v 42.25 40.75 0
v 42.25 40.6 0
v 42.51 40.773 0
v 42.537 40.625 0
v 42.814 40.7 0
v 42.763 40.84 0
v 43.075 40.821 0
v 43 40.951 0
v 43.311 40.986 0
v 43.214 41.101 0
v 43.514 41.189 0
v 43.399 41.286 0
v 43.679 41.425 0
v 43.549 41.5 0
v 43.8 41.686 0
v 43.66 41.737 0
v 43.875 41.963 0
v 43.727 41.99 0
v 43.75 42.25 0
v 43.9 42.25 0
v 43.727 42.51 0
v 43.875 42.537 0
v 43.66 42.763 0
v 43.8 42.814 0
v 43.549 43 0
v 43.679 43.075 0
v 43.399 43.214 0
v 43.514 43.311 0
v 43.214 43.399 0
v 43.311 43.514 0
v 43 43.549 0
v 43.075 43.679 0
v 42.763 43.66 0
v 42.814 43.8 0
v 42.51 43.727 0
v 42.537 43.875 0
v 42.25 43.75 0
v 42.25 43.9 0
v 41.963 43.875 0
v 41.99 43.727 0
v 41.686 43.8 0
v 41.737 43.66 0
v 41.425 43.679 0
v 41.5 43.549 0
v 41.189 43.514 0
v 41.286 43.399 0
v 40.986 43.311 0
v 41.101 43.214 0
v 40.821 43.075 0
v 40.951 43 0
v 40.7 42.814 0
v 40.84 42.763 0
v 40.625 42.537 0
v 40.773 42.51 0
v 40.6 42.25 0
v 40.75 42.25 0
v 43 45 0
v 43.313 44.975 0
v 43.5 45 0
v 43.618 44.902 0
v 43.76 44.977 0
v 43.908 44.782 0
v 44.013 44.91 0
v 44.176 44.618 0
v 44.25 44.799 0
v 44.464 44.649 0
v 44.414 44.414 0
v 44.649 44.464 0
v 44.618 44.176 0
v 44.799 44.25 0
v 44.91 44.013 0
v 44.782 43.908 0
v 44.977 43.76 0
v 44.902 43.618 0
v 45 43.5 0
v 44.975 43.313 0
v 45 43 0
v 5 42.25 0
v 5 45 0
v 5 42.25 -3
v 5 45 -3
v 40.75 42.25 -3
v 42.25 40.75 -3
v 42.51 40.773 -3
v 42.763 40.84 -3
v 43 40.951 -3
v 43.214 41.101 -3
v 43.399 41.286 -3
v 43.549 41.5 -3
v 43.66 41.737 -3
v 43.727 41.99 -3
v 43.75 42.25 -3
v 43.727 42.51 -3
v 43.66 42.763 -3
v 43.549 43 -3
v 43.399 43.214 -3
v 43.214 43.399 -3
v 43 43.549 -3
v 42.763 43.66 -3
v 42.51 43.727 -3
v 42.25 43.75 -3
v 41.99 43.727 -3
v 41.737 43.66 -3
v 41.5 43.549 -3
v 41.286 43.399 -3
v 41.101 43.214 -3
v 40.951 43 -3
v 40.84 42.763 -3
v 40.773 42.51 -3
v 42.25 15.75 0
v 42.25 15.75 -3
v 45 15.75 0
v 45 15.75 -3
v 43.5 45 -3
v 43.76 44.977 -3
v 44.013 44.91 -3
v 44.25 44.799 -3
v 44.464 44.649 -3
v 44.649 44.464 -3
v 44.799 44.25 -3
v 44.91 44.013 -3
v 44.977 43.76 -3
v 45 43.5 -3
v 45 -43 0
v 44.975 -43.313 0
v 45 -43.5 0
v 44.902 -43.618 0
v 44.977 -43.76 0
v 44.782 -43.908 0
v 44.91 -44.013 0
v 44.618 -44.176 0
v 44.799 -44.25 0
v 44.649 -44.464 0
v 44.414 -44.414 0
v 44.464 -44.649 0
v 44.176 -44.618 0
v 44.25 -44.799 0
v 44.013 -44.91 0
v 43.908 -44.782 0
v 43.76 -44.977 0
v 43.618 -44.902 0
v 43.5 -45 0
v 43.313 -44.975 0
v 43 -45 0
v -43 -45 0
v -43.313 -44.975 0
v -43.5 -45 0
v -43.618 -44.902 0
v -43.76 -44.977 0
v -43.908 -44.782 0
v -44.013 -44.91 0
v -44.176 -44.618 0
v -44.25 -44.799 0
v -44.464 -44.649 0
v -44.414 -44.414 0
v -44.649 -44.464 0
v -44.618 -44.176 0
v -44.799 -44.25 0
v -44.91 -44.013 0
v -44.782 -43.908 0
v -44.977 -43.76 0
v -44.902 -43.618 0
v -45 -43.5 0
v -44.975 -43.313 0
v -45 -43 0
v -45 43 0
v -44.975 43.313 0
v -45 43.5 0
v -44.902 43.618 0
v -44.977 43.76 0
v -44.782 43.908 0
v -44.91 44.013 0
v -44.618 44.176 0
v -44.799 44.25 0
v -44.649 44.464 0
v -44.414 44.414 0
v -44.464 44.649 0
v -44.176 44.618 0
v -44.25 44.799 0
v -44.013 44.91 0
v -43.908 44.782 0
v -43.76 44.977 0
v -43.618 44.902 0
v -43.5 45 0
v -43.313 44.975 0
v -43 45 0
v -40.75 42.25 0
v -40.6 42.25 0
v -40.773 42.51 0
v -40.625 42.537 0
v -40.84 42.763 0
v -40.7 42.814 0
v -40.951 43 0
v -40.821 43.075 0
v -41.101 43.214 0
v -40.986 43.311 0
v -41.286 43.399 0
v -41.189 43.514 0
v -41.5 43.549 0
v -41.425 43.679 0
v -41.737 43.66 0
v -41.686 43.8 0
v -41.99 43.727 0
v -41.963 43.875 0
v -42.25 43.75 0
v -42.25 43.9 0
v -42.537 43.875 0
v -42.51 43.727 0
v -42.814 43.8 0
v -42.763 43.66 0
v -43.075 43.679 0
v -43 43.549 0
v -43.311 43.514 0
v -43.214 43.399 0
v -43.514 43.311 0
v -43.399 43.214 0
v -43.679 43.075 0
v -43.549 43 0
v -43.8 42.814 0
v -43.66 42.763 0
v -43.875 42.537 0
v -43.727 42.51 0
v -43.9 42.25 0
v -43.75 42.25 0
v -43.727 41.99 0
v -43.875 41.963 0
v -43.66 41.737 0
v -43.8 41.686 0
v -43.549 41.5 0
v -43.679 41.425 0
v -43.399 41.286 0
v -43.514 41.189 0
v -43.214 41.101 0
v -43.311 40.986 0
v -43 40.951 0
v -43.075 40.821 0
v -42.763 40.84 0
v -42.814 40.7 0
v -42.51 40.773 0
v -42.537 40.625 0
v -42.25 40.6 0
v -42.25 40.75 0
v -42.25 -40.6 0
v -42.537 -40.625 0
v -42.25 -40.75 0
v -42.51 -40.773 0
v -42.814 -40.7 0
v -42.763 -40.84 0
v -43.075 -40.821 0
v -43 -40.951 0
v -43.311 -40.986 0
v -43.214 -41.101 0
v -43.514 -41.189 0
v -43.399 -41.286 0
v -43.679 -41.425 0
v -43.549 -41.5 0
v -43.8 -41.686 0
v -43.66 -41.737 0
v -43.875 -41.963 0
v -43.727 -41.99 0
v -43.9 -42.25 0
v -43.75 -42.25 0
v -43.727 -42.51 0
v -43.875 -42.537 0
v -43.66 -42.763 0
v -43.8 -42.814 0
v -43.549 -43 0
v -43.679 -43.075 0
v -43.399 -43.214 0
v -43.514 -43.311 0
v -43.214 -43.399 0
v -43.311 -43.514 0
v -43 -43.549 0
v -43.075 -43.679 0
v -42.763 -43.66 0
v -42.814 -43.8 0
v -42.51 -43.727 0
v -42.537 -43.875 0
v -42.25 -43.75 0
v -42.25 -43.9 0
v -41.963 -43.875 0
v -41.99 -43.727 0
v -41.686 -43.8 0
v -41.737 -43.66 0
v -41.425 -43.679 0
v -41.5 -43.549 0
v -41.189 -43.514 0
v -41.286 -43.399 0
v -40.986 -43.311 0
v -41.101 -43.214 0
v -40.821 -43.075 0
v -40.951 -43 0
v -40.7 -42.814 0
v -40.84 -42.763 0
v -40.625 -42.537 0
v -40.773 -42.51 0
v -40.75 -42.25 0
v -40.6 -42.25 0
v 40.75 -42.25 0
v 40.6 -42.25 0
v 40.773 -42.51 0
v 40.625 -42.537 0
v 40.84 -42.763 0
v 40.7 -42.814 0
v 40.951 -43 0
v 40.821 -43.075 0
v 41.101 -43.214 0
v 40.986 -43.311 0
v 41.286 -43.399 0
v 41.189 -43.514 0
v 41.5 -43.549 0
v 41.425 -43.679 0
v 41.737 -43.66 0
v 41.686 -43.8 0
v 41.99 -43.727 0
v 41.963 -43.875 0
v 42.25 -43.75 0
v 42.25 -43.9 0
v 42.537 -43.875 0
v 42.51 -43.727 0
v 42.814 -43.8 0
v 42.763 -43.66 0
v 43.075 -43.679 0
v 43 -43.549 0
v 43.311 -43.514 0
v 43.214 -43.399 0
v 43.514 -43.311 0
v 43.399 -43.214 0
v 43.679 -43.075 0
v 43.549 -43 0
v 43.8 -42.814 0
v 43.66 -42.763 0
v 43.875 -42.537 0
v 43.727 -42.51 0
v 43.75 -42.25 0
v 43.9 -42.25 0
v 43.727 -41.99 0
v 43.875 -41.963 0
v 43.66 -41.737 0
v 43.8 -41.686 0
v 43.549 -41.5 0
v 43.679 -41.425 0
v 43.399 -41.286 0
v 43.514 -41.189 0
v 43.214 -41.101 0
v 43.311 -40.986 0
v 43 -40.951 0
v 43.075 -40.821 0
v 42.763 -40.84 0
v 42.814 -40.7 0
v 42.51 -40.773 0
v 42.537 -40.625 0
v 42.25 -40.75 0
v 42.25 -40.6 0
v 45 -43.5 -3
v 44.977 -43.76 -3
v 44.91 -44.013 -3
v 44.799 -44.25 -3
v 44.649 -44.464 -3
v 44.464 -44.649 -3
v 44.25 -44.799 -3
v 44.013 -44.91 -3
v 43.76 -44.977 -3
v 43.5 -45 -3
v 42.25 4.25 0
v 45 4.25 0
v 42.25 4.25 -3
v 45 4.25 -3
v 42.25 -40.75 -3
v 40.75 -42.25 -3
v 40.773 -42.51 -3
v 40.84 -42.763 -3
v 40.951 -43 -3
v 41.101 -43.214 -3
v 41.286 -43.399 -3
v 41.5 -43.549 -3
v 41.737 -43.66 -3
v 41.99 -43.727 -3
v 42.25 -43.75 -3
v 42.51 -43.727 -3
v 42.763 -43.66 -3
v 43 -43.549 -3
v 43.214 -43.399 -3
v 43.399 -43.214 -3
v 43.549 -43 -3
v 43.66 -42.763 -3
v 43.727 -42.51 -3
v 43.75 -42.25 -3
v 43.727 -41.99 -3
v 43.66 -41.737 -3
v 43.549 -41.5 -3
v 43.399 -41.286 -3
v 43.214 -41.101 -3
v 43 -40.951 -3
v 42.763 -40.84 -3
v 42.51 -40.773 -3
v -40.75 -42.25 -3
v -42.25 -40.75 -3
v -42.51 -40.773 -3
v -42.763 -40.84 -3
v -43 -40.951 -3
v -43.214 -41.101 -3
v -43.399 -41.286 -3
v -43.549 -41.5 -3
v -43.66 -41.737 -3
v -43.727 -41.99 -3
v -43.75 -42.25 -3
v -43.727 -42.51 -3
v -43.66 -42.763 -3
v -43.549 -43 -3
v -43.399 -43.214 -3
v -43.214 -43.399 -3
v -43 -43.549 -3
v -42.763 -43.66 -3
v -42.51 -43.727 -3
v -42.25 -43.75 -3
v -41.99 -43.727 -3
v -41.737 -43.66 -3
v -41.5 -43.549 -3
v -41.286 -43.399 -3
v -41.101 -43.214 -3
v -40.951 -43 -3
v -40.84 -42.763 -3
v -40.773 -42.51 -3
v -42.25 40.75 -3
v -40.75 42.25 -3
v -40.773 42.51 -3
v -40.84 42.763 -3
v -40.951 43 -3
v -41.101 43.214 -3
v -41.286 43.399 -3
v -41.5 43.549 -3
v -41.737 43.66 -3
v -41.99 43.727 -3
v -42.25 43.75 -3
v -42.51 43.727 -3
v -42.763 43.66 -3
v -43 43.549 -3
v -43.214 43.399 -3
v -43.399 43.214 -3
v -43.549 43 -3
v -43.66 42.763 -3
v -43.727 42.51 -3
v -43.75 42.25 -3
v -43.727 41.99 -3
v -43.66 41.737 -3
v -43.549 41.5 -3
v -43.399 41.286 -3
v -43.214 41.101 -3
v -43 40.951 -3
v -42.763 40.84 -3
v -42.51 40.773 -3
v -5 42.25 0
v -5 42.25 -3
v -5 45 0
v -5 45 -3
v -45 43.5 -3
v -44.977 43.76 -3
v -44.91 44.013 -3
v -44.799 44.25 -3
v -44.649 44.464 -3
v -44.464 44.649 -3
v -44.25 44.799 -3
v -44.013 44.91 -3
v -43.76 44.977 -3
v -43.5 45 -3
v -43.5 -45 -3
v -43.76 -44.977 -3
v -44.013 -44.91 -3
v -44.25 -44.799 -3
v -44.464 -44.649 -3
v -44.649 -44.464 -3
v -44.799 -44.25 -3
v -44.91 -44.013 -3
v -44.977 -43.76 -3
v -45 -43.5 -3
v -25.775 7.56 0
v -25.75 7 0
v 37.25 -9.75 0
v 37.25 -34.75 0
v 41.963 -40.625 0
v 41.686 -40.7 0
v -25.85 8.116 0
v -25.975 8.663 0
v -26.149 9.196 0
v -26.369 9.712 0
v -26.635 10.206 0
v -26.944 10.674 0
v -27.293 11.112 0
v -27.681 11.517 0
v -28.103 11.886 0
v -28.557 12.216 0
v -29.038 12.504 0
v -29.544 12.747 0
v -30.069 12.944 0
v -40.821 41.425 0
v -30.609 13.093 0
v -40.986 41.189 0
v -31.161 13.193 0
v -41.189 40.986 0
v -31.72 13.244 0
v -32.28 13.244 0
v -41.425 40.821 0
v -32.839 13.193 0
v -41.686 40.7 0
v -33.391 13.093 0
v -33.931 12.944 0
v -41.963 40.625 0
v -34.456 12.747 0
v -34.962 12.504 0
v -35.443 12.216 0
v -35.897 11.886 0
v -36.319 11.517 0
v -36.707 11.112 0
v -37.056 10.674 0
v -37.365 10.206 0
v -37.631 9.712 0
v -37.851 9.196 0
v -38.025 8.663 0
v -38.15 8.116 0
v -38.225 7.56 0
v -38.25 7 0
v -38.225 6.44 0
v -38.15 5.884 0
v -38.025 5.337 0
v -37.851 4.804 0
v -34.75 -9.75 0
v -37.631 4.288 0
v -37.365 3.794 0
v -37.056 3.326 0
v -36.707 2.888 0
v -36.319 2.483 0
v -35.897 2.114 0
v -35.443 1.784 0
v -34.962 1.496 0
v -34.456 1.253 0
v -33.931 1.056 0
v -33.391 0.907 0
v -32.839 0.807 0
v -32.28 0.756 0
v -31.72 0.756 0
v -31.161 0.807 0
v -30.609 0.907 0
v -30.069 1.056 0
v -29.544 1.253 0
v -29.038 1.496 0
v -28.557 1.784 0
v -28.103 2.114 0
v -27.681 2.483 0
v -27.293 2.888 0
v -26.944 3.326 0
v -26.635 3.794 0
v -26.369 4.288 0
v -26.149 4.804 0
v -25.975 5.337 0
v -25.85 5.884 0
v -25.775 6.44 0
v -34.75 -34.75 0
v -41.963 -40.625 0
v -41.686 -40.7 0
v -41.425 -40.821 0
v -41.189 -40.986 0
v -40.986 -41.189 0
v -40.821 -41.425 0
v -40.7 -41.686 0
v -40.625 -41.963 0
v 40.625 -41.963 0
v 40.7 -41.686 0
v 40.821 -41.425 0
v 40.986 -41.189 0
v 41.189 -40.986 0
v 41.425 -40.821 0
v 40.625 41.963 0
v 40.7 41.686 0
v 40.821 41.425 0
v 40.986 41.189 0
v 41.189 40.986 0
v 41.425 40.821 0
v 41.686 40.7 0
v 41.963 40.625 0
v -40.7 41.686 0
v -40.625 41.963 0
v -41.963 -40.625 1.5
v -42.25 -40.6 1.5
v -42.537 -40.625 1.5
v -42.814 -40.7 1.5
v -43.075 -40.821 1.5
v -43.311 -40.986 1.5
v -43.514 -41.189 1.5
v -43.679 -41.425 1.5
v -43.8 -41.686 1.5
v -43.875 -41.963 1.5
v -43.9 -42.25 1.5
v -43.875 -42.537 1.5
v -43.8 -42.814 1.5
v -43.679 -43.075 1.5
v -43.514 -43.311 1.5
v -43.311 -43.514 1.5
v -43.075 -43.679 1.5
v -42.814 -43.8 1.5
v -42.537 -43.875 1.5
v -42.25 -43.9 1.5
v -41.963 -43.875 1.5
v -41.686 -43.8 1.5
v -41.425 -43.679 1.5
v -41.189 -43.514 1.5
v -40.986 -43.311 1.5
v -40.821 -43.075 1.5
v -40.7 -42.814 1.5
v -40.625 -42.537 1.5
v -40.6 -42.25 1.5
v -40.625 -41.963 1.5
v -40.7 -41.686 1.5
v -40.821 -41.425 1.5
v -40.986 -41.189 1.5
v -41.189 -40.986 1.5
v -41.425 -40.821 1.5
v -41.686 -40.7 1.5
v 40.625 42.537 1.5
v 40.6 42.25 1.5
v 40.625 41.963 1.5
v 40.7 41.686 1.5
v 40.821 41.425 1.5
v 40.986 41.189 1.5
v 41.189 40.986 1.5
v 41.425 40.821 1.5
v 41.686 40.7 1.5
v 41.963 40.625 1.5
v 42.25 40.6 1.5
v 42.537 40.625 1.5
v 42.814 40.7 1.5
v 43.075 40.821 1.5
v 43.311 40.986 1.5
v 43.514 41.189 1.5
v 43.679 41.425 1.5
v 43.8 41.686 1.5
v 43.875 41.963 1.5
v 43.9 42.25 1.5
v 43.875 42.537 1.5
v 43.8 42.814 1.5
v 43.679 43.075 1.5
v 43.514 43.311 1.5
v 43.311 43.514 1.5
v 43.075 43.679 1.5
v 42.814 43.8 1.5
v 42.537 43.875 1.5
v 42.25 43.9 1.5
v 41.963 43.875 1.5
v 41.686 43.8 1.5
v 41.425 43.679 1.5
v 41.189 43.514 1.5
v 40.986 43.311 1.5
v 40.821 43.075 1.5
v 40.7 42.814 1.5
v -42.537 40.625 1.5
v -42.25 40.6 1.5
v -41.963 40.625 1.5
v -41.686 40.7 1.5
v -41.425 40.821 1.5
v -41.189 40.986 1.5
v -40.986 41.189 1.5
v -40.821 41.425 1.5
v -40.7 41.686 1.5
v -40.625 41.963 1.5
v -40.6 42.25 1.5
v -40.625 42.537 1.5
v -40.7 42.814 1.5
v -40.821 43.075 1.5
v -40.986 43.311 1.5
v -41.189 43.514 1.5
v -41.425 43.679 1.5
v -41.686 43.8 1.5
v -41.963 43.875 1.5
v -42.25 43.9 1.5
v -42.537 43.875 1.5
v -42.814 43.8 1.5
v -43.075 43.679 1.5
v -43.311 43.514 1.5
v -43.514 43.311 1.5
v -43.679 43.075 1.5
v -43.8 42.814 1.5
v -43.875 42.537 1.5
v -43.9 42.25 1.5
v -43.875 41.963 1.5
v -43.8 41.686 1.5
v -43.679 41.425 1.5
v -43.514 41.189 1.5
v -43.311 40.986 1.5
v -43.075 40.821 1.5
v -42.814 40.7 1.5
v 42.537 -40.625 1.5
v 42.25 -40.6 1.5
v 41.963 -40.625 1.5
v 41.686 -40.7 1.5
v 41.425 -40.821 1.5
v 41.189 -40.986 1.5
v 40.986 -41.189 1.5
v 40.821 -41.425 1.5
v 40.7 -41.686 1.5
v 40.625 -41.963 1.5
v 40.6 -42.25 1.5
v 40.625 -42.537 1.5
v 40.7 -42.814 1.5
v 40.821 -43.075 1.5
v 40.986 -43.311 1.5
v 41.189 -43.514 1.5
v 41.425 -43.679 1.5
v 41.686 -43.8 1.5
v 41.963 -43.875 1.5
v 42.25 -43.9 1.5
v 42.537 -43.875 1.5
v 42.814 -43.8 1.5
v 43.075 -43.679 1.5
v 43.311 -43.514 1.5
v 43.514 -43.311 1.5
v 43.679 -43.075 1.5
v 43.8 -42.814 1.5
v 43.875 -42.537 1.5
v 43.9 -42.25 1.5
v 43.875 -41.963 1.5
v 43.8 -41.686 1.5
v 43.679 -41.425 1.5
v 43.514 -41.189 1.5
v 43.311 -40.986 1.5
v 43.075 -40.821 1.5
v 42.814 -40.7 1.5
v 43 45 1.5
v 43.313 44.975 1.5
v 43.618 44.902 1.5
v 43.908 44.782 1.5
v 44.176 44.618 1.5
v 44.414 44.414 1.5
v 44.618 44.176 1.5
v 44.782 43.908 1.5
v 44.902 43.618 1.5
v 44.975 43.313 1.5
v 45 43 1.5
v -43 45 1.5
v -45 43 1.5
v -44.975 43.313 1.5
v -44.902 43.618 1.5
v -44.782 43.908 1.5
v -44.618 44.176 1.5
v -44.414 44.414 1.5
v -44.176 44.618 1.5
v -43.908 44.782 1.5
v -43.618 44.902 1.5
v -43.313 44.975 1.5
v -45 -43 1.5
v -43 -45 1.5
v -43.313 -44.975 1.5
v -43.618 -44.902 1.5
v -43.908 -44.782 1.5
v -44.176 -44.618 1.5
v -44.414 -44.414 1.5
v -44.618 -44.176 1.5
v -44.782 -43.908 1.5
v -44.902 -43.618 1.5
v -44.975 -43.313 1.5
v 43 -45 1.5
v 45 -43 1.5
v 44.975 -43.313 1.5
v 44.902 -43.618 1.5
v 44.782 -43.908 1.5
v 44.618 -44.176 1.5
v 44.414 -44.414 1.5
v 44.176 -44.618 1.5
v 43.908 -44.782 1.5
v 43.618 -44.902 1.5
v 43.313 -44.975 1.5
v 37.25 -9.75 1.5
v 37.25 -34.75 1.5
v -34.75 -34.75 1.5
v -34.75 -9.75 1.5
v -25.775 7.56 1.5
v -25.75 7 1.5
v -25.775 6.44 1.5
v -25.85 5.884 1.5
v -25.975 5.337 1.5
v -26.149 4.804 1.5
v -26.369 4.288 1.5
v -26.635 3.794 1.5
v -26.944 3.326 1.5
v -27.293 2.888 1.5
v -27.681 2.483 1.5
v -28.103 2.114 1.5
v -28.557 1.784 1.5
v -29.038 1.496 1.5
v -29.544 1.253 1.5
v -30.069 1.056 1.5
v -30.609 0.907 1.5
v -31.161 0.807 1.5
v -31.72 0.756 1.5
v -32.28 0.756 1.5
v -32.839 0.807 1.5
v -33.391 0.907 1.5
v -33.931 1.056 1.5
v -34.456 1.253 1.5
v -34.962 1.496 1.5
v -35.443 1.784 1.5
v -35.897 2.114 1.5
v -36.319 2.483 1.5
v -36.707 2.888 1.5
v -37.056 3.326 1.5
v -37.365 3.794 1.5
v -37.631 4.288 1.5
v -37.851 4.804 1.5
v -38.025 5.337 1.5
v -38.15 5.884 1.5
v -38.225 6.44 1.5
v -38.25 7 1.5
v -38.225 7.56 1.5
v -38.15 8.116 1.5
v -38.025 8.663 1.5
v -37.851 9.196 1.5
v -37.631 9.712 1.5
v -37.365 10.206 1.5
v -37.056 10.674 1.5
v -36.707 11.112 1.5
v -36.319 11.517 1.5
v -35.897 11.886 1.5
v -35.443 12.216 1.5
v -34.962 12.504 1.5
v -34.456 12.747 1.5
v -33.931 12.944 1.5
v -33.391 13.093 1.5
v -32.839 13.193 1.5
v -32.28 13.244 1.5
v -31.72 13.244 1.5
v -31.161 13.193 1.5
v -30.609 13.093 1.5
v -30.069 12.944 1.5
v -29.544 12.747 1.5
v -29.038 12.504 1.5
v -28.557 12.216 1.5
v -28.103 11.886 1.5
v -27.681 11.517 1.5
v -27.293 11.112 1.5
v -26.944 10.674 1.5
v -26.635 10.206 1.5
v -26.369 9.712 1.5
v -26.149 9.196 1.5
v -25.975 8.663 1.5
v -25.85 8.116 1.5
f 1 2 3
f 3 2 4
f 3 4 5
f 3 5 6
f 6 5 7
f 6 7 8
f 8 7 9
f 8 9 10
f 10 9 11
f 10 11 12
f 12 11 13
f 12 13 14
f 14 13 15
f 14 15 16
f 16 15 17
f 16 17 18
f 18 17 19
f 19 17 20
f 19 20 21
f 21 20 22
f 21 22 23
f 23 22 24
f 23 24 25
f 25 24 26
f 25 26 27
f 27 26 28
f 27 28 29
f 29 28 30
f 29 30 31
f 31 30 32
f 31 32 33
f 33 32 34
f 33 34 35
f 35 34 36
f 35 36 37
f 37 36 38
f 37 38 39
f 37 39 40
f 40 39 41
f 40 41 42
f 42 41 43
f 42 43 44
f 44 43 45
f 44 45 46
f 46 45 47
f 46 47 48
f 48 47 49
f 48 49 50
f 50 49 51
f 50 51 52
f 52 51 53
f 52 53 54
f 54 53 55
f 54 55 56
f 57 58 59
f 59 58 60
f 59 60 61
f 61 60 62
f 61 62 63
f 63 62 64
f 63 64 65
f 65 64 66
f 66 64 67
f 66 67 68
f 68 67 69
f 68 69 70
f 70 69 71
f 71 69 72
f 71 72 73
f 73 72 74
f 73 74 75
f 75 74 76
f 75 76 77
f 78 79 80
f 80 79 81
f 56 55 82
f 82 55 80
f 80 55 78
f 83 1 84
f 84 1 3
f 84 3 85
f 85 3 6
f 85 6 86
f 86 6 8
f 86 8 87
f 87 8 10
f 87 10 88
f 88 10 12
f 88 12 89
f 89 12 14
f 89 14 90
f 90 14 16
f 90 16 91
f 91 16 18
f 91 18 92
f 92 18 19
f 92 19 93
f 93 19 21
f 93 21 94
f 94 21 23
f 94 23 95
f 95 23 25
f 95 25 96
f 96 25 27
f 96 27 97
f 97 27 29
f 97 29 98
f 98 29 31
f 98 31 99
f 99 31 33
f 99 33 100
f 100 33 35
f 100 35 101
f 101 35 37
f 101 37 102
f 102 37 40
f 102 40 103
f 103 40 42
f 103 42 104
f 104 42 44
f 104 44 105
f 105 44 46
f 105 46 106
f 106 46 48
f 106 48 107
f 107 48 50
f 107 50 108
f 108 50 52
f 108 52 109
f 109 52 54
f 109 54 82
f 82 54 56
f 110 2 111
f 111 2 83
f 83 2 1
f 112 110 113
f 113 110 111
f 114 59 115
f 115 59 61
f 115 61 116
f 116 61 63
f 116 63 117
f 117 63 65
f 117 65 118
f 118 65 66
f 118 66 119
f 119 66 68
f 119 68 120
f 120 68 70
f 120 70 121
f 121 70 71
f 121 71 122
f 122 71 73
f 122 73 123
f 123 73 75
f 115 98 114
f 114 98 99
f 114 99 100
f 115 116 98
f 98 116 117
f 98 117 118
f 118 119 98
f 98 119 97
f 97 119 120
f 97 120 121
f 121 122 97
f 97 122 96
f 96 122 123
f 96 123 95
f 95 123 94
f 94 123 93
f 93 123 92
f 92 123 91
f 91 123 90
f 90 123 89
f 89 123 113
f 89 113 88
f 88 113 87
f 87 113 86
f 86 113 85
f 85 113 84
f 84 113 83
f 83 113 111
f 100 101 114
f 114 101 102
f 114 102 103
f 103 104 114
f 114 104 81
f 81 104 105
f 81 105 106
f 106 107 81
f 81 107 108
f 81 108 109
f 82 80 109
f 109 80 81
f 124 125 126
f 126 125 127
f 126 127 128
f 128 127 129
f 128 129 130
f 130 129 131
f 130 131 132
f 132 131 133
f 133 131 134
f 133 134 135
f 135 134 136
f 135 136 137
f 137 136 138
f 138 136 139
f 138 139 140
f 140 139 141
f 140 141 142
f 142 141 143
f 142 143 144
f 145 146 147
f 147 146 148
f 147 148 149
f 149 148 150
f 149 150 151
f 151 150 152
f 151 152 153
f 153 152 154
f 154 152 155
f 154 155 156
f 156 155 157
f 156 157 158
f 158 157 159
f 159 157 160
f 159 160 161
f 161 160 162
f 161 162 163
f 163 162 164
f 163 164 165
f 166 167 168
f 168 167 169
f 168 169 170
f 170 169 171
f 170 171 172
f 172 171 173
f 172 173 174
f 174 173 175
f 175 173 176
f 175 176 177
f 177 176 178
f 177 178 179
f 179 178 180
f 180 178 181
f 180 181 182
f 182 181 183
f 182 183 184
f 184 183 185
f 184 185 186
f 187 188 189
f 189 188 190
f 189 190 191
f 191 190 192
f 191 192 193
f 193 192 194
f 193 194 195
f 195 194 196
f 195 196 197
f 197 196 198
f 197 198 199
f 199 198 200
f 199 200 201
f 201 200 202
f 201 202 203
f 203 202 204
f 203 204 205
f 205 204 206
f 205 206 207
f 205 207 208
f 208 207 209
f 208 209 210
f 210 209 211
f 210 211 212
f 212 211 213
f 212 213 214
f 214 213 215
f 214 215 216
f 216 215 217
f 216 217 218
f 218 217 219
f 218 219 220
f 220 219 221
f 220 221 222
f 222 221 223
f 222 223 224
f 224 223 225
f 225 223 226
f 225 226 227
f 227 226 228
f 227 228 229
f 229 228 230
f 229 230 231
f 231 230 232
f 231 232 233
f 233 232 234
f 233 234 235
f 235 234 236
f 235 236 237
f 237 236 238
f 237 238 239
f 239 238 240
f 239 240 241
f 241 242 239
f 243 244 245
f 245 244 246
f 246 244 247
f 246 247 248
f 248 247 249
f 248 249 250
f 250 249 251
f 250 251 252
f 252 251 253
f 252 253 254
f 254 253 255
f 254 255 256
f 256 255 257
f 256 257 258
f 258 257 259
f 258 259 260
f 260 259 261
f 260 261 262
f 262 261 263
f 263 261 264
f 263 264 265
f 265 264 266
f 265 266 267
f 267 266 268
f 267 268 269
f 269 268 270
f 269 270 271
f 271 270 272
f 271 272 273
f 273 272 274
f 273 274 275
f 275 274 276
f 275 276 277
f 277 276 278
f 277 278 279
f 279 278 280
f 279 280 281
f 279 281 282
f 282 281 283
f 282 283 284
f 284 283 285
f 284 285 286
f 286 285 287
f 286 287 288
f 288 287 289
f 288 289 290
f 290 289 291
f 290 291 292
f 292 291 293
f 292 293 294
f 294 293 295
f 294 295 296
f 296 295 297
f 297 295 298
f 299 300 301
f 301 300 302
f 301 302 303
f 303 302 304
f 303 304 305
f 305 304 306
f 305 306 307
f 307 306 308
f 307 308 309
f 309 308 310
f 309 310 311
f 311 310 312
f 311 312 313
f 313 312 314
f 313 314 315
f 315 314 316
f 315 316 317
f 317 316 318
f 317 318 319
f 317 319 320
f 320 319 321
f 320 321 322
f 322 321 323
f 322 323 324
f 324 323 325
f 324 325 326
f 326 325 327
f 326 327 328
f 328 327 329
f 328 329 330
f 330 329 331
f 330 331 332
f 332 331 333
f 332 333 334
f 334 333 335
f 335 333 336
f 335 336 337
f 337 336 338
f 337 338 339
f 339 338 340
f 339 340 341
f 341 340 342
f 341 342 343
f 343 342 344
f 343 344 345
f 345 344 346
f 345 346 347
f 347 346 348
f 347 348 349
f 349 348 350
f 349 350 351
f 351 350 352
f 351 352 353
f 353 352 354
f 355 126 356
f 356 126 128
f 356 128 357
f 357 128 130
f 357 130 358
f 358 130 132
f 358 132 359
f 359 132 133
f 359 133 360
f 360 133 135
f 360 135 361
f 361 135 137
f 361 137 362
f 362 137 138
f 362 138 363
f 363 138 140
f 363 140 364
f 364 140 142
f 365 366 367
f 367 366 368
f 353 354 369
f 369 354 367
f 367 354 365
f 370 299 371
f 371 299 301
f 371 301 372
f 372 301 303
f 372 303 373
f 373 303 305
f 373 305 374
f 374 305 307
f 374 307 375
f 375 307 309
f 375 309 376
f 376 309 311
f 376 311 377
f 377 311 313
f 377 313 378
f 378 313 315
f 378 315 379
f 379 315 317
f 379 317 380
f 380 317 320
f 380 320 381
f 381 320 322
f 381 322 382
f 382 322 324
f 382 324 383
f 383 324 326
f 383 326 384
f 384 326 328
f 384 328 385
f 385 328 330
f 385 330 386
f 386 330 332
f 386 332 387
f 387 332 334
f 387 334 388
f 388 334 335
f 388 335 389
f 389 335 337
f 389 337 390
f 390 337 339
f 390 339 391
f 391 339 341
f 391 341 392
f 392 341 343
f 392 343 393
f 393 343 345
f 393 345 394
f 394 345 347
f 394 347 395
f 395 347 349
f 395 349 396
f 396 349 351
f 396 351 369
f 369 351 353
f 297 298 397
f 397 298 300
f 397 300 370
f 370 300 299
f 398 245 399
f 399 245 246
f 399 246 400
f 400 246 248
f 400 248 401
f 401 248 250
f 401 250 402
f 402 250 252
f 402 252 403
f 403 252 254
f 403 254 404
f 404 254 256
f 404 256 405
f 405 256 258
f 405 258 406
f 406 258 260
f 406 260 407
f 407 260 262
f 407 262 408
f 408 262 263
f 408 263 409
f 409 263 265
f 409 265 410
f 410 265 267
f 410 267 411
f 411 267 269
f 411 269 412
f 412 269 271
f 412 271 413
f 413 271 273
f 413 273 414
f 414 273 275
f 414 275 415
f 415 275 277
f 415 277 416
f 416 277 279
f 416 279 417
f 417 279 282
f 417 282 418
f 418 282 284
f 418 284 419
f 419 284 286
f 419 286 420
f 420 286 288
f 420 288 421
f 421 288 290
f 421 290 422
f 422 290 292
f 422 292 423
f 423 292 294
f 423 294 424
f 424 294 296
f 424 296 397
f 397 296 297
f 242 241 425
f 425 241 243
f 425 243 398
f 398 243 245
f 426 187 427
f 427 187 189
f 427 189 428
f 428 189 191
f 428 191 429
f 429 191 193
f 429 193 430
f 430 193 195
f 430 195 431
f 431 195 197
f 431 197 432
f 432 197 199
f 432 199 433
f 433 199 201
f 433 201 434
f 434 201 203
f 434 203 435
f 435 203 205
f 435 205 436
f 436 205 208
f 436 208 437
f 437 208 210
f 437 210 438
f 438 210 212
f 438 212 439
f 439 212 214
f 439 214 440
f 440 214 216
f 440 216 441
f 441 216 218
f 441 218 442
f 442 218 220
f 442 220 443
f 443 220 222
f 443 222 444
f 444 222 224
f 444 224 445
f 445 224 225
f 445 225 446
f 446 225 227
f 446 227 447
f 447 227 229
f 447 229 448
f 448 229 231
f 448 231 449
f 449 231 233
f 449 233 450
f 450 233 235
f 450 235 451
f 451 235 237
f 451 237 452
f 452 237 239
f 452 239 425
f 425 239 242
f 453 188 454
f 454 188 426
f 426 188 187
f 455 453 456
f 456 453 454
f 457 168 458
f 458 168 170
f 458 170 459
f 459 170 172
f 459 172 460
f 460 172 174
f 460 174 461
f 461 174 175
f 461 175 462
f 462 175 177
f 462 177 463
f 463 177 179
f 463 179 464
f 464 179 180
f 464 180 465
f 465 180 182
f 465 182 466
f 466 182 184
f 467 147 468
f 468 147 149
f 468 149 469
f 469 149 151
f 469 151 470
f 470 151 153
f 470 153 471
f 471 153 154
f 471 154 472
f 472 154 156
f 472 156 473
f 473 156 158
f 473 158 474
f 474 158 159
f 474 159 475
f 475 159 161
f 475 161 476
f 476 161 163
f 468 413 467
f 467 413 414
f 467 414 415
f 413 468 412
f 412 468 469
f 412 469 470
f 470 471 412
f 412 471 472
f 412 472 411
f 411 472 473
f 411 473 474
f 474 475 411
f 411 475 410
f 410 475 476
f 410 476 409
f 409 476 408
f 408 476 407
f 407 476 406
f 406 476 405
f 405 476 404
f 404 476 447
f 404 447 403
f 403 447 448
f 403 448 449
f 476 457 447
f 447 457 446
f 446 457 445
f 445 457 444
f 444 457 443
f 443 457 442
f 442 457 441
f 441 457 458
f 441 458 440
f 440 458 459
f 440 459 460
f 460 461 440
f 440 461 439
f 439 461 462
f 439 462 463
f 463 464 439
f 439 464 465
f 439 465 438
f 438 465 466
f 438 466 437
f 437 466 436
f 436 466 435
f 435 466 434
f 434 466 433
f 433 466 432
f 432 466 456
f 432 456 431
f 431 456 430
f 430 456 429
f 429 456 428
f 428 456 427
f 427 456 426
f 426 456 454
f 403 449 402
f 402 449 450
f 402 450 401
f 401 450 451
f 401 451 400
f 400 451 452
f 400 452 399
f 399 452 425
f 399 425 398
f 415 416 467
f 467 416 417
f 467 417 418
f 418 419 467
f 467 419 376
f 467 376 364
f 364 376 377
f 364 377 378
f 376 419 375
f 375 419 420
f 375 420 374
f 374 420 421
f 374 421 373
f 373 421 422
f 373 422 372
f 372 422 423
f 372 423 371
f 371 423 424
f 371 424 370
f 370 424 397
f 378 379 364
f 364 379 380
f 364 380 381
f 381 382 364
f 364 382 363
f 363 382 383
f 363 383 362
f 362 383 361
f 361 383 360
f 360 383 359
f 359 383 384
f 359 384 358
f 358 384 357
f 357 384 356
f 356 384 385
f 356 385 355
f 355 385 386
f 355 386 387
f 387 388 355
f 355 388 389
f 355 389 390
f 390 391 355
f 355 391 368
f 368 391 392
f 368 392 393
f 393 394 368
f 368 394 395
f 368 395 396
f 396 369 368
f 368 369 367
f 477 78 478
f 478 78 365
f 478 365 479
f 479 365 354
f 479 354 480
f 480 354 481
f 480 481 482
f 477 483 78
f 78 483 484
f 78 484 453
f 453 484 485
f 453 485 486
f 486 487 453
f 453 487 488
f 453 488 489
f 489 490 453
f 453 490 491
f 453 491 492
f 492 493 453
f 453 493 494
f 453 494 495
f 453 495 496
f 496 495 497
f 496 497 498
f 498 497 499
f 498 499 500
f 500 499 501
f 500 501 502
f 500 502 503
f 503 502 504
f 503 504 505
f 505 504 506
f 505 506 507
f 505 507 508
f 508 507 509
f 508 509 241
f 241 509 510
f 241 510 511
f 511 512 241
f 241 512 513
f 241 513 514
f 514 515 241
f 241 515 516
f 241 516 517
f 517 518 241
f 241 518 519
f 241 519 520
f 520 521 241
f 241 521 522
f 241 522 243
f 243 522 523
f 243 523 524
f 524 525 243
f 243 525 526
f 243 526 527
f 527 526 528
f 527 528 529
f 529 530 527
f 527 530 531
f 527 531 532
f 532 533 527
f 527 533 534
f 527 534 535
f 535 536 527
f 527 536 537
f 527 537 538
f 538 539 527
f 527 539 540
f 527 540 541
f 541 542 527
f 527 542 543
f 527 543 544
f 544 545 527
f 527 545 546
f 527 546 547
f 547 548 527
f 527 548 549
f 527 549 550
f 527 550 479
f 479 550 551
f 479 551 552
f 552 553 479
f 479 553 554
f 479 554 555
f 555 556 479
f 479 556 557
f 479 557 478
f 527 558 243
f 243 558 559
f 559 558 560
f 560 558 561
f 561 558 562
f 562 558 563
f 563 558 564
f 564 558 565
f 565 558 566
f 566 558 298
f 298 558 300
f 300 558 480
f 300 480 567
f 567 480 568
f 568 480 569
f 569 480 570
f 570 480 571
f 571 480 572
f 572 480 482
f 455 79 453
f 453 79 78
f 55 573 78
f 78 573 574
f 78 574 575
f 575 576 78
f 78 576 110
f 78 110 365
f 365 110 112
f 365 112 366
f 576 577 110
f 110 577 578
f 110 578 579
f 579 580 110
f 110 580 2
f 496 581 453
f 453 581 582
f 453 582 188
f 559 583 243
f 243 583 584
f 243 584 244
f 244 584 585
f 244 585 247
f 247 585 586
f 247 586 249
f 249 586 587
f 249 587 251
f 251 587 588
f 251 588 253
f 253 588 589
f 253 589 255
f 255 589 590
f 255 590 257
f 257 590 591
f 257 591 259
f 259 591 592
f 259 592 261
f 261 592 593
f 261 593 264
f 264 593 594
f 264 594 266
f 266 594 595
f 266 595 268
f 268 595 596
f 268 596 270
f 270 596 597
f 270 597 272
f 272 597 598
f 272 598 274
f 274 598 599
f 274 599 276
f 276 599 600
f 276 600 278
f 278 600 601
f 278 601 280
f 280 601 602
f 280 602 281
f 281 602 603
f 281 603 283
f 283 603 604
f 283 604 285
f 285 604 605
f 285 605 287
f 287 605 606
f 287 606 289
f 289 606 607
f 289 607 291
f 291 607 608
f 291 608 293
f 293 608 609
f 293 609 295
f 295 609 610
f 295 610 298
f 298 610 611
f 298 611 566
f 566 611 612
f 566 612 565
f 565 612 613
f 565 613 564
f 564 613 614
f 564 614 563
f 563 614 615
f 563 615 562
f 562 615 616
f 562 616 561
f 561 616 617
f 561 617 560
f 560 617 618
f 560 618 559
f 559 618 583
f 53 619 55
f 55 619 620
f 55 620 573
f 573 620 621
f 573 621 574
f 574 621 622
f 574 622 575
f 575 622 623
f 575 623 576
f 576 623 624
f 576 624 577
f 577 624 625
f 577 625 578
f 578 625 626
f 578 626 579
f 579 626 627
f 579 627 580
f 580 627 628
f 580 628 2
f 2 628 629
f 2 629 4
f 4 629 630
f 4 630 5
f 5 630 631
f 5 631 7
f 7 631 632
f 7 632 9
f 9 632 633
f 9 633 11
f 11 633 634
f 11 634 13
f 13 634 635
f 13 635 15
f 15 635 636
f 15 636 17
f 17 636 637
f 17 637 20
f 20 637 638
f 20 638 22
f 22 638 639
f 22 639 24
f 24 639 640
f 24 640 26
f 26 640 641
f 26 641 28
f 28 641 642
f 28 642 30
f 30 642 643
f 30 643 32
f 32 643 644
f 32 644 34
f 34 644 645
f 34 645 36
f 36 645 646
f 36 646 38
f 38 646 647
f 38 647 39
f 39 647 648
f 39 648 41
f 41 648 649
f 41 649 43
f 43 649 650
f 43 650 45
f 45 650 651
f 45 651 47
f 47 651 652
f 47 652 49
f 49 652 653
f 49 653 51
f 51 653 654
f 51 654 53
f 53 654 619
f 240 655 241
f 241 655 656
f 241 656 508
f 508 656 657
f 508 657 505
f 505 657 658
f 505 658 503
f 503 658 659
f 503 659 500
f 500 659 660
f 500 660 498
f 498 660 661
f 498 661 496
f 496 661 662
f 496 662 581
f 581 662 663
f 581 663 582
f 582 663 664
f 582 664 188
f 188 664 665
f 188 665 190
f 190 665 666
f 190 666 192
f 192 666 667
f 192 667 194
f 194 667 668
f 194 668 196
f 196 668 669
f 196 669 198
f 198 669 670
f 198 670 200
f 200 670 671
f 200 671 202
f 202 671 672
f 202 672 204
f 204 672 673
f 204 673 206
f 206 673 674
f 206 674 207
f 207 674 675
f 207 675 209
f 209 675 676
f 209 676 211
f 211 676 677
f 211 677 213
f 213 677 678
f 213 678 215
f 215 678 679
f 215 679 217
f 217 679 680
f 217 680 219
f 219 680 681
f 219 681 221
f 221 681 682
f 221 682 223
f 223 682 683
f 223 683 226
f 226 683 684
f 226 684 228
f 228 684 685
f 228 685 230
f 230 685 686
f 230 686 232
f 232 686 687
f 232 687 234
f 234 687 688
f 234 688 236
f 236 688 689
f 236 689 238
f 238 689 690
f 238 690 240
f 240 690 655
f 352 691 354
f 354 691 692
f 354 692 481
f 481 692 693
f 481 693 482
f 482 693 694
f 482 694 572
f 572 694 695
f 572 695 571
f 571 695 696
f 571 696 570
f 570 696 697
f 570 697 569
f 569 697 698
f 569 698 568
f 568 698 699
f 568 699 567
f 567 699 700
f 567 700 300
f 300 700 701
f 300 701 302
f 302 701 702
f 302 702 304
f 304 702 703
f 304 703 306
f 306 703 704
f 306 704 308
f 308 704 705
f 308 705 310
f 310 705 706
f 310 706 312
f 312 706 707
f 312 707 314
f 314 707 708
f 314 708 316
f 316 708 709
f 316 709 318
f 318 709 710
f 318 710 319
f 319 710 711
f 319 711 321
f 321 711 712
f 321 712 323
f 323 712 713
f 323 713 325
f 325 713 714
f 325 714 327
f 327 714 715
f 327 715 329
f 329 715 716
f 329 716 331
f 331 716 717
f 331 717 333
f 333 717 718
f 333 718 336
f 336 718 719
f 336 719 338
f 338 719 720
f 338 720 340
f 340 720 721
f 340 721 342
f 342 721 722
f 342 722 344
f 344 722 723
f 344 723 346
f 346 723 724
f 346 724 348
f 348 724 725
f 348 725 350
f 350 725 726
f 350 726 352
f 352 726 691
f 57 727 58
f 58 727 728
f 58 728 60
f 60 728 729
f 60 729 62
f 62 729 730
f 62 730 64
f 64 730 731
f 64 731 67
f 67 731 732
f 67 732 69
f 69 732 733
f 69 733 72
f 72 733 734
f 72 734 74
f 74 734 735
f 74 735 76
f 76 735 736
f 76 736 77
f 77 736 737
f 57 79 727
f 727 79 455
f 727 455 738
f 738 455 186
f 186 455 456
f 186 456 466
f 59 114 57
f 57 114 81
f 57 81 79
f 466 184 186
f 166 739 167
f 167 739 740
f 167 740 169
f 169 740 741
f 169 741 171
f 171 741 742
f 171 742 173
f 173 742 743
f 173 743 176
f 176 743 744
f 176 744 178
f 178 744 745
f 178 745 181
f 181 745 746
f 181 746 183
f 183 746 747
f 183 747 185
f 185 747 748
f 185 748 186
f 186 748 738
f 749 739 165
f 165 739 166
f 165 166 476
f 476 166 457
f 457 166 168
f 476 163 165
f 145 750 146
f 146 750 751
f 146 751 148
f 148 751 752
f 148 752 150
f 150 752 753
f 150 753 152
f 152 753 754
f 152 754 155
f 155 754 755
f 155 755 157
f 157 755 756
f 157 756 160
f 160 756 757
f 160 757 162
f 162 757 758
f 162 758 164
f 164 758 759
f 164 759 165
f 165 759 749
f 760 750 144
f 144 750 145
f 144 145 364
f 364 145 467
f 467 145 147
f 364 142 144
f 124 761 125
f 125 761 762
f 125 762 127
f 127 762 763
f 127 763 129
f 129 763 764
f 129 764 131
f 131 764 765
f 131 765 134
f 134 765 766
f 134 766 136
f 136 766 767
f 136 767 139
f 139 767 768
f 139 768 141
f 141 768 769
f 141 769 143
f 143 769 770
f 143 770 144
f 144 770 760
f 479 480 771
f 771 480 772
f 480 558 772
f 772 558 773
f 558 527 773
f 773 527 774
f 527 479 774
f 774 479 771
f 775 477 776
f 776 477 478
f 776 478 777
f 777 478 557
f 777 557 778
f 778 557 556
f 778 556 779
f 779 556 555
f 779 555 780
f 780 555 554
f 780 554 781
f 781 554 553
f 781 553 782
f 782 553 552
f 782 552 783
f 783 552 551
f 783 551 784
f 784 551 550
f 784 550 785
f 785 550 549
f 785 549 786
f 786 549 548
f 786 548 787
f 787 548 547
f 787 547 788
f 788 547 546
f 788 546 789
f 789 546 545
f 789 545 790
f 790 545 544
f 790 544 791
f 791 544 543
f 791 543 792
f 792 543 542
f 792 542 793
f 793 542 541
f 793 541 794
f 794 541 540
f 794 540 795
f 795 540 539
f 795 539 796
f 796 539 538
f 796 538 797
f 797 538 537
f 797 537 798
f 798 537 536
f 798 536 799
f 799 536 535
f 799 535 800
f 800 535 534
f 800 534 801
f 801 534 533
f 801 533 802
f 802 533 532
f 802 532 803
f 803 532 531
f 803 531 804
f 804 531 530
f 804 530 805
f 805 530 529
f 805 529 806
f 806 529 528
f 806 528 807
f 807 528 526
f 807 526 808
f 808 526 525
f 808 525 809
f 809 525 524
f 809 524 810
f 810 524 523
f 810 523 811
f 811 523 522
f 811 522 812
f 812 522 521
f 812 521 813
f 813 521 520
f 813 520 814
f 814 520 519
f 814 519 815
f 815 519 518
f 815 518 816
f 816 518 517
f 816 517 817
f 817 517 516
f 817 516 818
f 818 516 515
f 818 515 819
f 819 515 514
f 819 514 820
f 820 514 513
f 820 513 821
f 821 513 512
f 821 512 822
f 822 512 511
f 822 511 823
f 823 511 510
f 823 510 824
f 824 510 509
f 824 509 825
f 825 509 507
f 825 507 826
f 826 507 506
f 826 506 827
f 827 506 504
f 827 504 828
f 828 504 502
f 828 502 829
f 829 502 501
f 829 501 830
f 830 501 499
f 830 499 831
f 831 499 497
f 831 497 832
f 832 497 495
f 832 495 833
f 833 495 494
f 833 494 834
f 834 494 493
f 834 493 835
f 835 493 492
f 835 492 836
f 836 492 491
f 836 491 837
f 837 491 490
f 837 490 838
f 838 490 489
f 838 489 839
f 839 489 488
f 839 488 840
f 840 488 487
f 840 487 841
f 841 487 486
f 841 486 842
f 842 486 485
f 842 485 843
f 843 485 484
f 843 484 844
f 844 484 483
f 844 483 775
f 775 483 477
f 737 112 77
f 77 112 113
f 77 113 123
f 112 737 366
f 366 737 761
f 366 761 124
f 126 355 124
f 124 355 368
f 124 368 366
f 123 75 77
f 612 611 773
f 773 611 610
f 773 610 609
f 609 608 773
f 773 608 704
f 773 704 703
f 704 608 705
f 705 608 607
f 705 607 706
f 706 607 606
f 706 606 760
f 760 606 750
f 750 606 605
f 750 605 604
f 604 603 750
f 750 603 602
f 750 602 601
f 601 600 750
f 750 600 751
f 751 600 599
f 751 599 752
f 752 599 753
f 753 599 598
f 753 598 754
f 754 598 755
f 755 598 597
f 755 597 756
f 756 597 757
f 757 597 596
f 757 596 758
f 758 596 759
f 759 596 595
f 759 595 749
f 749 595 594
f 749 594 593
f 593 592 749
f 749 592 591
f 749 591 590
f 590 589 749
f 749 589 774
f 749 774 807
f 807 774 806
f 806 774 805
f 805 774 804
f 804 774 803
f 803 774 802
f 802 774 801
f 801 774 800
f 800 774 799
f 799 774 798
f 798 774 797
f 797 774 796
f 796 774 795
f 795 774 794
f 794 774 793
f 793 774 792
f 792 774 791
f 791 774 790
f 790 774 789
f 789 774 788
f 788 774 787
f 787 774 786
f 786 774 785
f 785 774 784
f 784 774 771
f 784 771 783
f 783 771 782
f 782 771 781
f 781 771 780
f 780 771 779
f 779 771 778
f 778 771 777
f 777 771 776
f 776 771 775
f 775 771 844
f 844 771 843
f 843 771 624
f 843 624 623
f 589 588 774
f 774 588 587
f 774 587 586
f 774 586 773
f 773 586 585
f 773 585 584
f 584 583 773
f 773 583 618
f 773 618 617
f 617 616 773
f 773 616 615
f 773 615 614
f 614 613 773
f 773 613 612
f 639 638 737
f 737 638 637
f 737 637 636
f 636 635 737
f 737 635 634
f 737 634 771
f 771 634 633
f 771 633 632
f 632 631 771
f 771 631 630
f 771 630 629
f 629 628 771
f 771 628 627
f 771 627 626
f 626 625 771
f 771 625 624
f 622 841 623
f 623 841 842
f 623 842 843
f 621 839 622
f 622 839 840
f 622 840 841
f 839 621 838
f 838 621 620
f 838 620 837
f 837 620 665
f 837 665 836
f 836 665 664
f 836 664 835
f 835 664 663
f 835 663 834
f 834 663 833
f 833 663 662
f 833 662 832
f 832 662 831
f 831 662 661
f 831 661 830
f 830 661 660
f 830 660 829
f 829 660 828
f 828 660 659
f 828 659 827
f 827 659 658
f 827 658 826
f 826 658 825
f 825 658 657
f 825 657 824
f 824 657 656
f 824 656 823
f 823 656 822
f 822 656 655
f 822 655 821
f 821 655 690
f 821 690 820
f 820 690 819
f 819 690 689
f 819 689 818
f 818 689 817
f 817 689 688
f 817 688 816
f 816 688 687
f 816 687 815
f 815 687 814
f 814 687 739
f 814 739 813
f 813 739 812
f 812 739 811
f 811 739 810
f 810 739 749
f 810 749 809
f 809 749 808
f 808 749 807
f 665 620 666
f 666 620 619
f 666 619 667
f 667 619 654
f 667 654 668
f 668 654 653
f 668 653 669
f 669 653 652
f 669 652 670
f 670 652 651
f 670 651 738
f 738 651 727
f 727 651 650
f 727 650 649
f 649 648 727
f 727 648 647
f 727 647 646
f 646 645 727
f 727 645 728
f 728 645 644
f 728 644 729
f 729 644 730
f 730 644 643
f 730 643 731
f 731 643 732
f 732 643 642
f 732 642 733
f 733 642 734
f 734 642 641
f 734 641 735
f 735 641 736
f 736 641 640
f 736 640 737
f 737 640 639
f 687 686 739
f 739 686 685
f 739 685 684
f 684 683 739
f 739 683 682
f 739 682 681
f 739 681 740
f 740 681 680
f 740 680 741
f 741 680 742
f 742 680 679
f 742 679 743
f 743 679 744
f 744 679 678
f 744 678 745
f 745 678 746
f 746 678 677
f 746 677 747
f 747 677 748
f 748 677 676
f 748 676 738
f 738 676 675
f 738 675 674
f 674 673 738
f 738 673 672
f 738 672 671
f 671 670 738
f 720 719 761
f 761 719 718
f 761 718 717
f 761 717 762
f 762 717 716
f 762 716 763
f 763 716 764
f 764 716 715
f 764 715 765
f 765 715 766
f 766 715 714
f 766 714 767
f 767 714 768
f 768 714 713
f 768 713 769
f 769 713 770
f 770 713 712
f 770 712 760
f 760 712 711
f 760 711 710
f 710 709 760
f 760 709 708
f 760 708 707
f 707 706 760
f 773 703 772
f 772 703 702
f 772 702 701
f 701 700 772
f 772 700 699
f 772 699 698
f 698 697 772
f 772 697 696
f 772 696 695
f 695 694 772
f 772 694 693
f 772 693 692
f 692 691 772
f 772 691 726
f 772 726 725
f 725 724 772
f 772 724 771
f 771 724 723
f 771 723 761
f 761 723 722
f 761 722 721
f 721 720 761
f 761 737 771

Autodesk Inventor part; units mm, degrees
ref_plane "YZ Plane" through (0, 0, 0) normal (1, 0, 0) x (0, 1, 0)
ref_plane "XZ Plane" through (0, 0, 0) normal (0, 1, 0) x (-1, 0, 0)
ref_plane "XY Plane" through (0, 0, 0) normal (0, 0, 1) x (1, 0, 0)
sketch "Sketch1" plane through (0, 0, 0) normal (0, 0, 1) x (1, 0, 0)
  arc A0 (-45, -43.5) -> (-43.5, -45) centre (-43.5, -43.5) ccw projected
  line L0 (-43.5, -45) -> (43.5, -45) projected
  arc A1 (43.5, -45) -> (45, -43.5) centre (43.5, -43.5) ccw projected
  line L1 (45, -43.5) -> (45, 4.25) projected
  line L2 (45, 4.25) -> (42.25, 4.25) projected
  line L3 (42.25, 4.25) -> (42.25, -40.75) projected
  arc A2 (40.75, -42.25) -> (42.25, -40.75) centre (42.25, -42.25) ccw projected
  line L4 (40.75, -42.25) -> (-40.75, -42.25) projected
  arc A3 (-42.25, -40.75) -> (-40.75, -42.25) centre (-42.25, -42.25) ccw projected
  line L5 (-42.25, -40.75) -> (-42.25, 40.75) projected
  arc A4 (-40.75, 42.25) -> (-42.25, 40.75) centre (-42.25, 42.25) ccw projected
  line L6 (-40.75, 42.25) -> (-5, 42.25) projected
  line L7 (-5, 42.25) -> (-5, 45) projected
  line L8 (-5, 45) -> (-43.5, 45) projected
  arc A5 (-43.5, 45) -> (-45, 43.5) centre (-43.5, 43.5) ccw projected
  line L9 (-45, 43.5) -> (-45, -43.5) projected
  line L10 (-45, 45) -> (45, 45)
  line L11 (45, 45) -> (45, -45)
  line L12 (45, -45) -> (-45, -45)
  line L13 (-45, -45) -> (-45, 45)
  line L14 (-45, 45) -> (45, -45) construction
  line L15 (45, 45) -> (-45, -45) construction
  line L16 (37.25, -9.75) -> (-34.75, -9.75)
  line L17 (-34.75, -9.75) -> (-34.75, -34.75)
  line L18 (-34.75, -34.75) -> (37.25, -34.75)
  line L19 (37.25, -34.75) -> (37.25, -9.75)
  circle A6 centre (-32, 7) radius 6.25
  point P0 (0, 0)
  dimension "d0" = 90
  dimension "d1" = 90
  dimension "d2" = 72
  dimension "d3" = 25
  dimension "d4" = 7.5
  dimension "d5" = 5
  dimension "d6" = 12.5
  dimension "d19" = 38
  dimension "d20" = 13
extrude "Extrusion1" add sketch "Sketch1" along normal blind 1.5
fillet "Fillet1" radius 2 4 edges at (45, -45, 0.75) (-45, -45, 0.75) (-45, 45, 0.75) (45, 45, 0.75)
sketch "Sketch2" plane through (0, 0, 1.5) normal (0, 0, 1) x (1, 0, 0)
  arc A0 (40.75, -42.25) -> (42.25, -40.75) centre (42.25, -42.25) ccw projected
  arc A1 (-42.25, -40.75) -> (-40.75, -42.25) centre (-42.25, -42.25) ccw projected
  arc A2 (-40.75, 42.25) -> (-42.25, 40.75) centre (-42.25, 42.25) ccw projected
  arc A3 (42.25, 40.75) -> (40.75, 42.25) centre (42.25, 42.25) ccw projected
  circle A4 centre (42.25, 42.25) radius 1.65
  circle A5 centre (-42.25, 42.25) radius 1.65
  circle A6 centre (-42.25, -42.25) radius 1.65
  circle A7 centre (42.25, -42.25) radius 1.65
  point P0 (0, 0)
  dimension "d12" = 3.3
  dimension "d13" = 3.3
  dimension "d14" = 3.3
  dimension "d15" = 3.3
extrude "Extrusion2" cut sketch "Sketch2" against normal blind 3
sketch "Sketch3" plane through (0, 0, 0) normal (0, 0, -1) x (-1, 0, 0)
  arc A0 (43.5, -45) -> (45, -43.5) centre (43.5, -43.5) ccw projected
  line L0 (43.5, -45) -> (-43.5, -45) projected
  arc A1 (-45, -43.5) -> (-43.5, -45) centre (-43.5, -43.5) ccw projected
  line L1 (-45, -43.5) -> (-45, 4.25) projected
  line L2 (-45, 4.25) -> (-42.25, 4.25) projected
  line L3 (-42.25, 4.25) -> (-42.25, -40.75) projected
  arc A2 (-42.25, -40.75) -> (-40.75, -42.25) centre (-42.25, -42.25) ccw projected
  line L4 (-40.75, -42.25) -> (40.75, -42.25) projected
  arc A3 (40.75, -42.25) -> (42.25, -40.75) centre (42.25, -42.25) ccw projected
  line L5 (42.25, -40.75) -> (42.25, 40.75) projected
  arc A4 (42.25, 40.75) -> (40.75, 42.25) centre (42.25, 42.25) ccw projected
  line L6 (40.75, 42.25) -> (5, 42.25) projected
  line L7 (5, 42.25) -> (5, 45) projected
  line L8 (5, 45) -> (43.5, 45) projected
  arc A5 (45, 43.5) -> (43.5, 45) centre (43.5, 43.5) ccw projected
  line L9 (45, 43.5) -> (45, -43.5) projected
  arc A6 (-43.5, 45) -> (-45, 43.5) centre (-43.5, 43.5) ccw projected
  line L10 (-43.5, 45) -> (-5, 45) projected
  line L11 (-5, 45) -> (-5, 42.25) projected
  line L12 (-5, 42.25) -> (-40.75, 42.25) projected
  arc A7 (-40.75, 42.25) -> (-42.25, 40.75) centre (-42.25, 42.25) ccw projected
  line L13 (-42.25, 40.75) -> (-42.25, 15.75) projected
  line L14 (-42.25, 15.75) -> (-45, 15.75) projected
  line L15 (-45, 15.75) -> (-45, 43.5) projected
  point P0 (0, 0)
extrude "Extrusion3" add sketch "Sketch3" along normal blind 3
properties part number "covor"
